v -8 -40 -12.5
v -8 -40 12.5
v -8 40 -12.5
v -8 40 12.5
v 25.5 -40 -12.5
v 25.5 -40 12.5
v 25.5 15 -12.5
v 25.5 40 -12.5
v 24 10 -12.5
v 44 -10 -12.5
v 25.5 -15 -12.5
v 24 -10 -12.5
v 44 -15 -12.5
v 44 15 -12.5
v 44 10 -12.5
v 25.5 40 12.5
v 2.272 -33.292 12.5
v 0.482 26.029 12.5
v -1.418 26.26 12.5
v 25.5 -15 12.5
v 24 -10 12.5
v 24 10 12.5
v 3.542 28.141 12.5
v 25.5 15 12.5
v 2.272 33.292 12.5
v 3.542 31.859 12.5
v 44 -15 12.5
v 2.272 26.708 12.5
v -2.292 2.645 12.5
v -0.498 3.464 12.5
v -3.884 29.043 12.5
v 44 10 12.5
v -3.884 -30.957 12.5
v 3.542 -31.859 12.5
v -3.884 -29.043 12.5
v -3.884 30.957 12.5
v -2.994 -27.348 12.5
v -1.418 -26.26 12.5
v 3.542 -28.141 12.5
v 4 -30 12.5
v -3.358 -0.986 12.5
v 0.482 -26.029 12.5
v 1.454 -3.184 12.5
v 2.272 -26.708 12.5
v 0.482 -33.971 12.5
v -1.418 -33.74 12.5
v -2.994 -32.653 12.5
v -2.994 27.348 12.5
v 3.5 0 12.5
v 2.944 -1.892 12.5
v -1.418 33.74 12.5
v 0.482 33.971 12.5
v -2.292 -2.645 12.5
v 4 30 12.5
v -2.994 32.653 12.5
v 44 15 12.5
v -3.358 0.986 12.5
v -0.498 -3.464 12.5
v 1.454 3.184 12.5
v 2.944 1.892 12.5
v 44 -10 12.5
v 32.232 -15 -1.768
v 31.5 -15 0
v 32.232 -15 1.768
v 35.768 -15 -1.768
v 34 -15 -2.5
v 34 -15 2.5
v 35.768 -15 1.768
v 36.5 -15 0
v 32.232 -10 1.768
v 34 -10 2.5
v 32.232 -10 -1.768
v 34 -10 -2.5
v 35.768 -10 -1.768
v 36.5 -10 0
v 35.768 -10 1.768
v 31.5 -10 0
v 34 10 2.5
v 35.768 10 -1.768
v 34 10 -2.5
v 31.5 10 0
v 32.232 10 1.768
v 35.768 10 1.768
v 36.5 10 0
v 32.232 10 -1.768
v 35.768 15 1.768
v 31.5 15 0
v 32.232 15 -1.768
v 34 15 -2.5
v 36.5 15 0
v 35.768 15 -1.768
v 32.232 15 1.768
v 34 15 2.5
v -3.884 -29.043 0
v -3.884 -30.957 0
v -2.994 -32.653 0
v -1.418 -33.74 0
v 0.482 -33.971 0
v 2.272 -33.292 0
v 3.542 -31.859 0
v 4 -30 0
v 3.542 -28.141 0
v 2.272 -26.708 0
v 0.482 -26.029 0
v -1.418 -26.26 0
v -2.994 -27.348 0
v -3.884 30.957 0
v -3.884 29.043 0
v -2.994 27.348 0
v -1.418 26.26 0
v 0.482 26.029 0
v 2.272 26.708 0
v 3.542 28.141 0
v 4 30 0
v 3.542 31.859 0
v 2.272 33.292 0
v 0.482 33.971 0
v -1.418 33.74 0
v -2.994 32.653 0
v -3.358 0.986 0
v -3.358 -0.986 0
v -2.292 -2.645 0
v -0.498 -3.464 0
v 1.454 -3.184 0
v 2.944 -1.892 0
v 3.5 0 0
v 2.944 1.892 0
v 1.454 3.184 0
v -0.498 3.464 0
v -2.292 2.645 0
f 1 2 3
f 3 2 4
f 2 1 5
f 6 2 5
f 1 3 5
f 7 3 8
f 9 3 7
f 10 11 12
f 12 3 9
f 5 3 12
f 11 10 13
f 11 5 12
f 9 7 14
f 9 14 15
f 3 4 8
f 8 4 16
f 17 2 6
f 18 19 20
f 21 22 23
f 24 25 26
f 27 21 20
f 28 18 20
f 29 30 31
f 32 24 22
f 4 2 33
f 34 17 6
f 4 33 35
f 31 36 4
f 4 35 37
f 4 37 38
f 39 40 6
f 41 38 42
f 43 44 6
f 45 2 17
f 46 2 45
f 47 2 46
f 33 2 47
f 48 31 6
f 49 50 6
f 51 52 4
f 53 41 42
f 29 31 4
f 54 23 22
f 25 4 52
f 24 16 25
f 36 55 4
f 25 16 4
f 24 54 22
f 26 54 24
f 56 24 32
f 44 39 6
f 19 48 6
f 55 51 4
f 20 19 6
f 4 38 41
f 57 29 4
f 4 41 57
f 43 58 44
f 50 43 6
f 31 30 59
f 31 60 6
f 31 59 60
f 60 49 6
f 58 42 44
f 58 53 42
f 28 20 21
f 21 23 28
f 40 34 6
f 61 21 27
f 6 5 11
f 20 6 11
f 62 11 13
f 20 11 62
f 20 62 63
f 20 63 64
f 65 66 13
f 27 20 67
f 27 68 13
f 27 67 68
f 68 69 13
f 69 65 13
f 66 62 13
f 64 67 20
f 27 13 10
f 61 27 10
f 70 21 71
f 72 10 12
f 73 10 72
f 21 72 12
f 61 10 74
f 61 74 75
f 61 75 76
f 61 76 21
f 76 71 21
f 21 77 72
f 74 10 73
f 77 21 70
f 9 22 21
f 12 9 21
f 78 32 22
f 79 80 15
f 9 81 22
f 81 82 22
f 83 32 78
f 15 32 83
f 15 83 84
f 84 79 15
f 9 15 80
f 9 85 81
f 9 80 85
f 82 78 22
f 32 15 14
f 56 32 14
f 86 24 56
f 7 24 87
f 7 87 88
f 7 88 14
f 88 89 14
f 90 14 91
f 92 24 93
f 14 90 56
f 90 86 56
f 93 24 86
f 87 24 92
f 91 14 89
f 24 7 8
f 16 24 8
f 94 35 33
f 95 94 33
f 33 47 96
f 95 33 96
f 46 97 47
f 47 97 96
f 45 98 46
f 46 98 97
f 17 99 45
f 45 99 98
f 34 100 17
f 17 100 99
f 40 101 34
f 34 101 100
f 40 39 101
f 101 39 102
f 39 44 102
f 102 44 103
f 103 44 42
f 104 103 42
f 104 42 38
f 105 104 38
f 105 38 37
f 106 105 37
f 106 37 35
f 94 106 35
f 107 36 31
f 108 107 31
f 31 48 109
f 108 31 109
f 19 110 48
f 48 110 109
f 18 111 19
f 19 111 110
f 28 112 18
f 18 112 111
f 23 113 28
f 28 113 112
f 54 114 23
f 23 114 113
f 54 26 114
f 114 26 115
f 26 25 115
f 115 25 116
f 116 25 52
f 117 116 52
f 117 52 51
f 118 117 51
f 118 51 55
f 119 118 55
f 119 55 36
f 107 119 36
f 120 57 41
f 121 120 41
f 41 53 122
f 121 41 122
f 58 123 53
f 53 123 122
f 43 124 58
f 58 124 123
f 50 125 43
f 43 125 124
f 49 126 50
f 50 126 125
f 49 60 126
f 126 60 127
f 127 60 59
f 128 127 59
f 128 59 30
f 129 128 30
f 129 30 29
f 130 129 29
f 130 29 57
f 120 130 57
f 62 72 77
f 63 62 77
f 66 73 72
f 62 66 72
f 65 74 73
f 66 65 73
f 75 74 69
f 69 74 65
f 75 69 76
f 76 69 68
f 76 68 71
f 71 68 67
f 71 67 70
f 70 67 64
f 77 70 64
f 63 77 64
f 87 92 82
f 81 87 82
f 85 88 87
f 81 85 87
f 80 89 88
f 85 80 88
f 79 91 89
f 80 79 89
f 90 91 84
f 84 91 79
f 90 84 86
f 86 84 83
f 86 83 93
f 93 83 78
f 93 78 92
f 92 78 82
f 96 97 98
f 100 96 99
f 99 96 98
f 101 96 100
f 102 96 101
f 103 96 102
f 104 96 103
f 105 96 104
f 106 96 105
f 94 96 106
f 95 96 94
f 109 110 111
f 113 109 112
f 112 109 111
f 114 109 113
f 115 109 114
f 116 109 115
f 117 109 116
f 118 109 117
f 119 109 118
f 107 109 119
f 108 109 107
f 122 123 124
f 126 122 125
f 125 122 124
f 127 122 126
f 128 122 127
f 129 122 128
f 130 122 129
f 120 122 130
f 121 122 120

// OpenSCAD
// file: resina_carriage.scad
module carriage(){
difference(){
union(){
import("resina_carriage.stl");
cylinder(h=40,r=9,$fs=10);
}
union(){
cylinder(h=10,r=4.5,$fn=6);
translate([0,0,20])cylinder(h=20,r=5,$fs=6);
translate([0,0,-20])cylinder(h=100,r=2.8);
}
}
}

//carriage();
// main file
include<resina_carriage.scad>;

module un_agujero(){
  translate([31/2,31/2,-10])cylinder(r=3.5/2,h=100,center=true);
}


difference(){
union(){
  // Registros varillas lisas
  translate([17.5/2,0,0])cube([16+17.5,80,25],center=true);

  // Registro perfil alu
  translate([48/2+10,0,0])cube([20,30,25],center=true);

}

union(){
  translate([0,30,0])cylinder(r=4,h=150);
  translate([0,-30,0])cylinder(r=4,h=150);

  // hueco perfil
  translate([48/2+10,0,0])cube([20,20,25],center=true);
  // tornillos perfil
  translate([48/2+10,0,0])rotate([90,0,0])cylinder(r=2.5,h=100,center=true);

  translate([0,0,0])cylinder(r=3.5,h=150);

}
}
